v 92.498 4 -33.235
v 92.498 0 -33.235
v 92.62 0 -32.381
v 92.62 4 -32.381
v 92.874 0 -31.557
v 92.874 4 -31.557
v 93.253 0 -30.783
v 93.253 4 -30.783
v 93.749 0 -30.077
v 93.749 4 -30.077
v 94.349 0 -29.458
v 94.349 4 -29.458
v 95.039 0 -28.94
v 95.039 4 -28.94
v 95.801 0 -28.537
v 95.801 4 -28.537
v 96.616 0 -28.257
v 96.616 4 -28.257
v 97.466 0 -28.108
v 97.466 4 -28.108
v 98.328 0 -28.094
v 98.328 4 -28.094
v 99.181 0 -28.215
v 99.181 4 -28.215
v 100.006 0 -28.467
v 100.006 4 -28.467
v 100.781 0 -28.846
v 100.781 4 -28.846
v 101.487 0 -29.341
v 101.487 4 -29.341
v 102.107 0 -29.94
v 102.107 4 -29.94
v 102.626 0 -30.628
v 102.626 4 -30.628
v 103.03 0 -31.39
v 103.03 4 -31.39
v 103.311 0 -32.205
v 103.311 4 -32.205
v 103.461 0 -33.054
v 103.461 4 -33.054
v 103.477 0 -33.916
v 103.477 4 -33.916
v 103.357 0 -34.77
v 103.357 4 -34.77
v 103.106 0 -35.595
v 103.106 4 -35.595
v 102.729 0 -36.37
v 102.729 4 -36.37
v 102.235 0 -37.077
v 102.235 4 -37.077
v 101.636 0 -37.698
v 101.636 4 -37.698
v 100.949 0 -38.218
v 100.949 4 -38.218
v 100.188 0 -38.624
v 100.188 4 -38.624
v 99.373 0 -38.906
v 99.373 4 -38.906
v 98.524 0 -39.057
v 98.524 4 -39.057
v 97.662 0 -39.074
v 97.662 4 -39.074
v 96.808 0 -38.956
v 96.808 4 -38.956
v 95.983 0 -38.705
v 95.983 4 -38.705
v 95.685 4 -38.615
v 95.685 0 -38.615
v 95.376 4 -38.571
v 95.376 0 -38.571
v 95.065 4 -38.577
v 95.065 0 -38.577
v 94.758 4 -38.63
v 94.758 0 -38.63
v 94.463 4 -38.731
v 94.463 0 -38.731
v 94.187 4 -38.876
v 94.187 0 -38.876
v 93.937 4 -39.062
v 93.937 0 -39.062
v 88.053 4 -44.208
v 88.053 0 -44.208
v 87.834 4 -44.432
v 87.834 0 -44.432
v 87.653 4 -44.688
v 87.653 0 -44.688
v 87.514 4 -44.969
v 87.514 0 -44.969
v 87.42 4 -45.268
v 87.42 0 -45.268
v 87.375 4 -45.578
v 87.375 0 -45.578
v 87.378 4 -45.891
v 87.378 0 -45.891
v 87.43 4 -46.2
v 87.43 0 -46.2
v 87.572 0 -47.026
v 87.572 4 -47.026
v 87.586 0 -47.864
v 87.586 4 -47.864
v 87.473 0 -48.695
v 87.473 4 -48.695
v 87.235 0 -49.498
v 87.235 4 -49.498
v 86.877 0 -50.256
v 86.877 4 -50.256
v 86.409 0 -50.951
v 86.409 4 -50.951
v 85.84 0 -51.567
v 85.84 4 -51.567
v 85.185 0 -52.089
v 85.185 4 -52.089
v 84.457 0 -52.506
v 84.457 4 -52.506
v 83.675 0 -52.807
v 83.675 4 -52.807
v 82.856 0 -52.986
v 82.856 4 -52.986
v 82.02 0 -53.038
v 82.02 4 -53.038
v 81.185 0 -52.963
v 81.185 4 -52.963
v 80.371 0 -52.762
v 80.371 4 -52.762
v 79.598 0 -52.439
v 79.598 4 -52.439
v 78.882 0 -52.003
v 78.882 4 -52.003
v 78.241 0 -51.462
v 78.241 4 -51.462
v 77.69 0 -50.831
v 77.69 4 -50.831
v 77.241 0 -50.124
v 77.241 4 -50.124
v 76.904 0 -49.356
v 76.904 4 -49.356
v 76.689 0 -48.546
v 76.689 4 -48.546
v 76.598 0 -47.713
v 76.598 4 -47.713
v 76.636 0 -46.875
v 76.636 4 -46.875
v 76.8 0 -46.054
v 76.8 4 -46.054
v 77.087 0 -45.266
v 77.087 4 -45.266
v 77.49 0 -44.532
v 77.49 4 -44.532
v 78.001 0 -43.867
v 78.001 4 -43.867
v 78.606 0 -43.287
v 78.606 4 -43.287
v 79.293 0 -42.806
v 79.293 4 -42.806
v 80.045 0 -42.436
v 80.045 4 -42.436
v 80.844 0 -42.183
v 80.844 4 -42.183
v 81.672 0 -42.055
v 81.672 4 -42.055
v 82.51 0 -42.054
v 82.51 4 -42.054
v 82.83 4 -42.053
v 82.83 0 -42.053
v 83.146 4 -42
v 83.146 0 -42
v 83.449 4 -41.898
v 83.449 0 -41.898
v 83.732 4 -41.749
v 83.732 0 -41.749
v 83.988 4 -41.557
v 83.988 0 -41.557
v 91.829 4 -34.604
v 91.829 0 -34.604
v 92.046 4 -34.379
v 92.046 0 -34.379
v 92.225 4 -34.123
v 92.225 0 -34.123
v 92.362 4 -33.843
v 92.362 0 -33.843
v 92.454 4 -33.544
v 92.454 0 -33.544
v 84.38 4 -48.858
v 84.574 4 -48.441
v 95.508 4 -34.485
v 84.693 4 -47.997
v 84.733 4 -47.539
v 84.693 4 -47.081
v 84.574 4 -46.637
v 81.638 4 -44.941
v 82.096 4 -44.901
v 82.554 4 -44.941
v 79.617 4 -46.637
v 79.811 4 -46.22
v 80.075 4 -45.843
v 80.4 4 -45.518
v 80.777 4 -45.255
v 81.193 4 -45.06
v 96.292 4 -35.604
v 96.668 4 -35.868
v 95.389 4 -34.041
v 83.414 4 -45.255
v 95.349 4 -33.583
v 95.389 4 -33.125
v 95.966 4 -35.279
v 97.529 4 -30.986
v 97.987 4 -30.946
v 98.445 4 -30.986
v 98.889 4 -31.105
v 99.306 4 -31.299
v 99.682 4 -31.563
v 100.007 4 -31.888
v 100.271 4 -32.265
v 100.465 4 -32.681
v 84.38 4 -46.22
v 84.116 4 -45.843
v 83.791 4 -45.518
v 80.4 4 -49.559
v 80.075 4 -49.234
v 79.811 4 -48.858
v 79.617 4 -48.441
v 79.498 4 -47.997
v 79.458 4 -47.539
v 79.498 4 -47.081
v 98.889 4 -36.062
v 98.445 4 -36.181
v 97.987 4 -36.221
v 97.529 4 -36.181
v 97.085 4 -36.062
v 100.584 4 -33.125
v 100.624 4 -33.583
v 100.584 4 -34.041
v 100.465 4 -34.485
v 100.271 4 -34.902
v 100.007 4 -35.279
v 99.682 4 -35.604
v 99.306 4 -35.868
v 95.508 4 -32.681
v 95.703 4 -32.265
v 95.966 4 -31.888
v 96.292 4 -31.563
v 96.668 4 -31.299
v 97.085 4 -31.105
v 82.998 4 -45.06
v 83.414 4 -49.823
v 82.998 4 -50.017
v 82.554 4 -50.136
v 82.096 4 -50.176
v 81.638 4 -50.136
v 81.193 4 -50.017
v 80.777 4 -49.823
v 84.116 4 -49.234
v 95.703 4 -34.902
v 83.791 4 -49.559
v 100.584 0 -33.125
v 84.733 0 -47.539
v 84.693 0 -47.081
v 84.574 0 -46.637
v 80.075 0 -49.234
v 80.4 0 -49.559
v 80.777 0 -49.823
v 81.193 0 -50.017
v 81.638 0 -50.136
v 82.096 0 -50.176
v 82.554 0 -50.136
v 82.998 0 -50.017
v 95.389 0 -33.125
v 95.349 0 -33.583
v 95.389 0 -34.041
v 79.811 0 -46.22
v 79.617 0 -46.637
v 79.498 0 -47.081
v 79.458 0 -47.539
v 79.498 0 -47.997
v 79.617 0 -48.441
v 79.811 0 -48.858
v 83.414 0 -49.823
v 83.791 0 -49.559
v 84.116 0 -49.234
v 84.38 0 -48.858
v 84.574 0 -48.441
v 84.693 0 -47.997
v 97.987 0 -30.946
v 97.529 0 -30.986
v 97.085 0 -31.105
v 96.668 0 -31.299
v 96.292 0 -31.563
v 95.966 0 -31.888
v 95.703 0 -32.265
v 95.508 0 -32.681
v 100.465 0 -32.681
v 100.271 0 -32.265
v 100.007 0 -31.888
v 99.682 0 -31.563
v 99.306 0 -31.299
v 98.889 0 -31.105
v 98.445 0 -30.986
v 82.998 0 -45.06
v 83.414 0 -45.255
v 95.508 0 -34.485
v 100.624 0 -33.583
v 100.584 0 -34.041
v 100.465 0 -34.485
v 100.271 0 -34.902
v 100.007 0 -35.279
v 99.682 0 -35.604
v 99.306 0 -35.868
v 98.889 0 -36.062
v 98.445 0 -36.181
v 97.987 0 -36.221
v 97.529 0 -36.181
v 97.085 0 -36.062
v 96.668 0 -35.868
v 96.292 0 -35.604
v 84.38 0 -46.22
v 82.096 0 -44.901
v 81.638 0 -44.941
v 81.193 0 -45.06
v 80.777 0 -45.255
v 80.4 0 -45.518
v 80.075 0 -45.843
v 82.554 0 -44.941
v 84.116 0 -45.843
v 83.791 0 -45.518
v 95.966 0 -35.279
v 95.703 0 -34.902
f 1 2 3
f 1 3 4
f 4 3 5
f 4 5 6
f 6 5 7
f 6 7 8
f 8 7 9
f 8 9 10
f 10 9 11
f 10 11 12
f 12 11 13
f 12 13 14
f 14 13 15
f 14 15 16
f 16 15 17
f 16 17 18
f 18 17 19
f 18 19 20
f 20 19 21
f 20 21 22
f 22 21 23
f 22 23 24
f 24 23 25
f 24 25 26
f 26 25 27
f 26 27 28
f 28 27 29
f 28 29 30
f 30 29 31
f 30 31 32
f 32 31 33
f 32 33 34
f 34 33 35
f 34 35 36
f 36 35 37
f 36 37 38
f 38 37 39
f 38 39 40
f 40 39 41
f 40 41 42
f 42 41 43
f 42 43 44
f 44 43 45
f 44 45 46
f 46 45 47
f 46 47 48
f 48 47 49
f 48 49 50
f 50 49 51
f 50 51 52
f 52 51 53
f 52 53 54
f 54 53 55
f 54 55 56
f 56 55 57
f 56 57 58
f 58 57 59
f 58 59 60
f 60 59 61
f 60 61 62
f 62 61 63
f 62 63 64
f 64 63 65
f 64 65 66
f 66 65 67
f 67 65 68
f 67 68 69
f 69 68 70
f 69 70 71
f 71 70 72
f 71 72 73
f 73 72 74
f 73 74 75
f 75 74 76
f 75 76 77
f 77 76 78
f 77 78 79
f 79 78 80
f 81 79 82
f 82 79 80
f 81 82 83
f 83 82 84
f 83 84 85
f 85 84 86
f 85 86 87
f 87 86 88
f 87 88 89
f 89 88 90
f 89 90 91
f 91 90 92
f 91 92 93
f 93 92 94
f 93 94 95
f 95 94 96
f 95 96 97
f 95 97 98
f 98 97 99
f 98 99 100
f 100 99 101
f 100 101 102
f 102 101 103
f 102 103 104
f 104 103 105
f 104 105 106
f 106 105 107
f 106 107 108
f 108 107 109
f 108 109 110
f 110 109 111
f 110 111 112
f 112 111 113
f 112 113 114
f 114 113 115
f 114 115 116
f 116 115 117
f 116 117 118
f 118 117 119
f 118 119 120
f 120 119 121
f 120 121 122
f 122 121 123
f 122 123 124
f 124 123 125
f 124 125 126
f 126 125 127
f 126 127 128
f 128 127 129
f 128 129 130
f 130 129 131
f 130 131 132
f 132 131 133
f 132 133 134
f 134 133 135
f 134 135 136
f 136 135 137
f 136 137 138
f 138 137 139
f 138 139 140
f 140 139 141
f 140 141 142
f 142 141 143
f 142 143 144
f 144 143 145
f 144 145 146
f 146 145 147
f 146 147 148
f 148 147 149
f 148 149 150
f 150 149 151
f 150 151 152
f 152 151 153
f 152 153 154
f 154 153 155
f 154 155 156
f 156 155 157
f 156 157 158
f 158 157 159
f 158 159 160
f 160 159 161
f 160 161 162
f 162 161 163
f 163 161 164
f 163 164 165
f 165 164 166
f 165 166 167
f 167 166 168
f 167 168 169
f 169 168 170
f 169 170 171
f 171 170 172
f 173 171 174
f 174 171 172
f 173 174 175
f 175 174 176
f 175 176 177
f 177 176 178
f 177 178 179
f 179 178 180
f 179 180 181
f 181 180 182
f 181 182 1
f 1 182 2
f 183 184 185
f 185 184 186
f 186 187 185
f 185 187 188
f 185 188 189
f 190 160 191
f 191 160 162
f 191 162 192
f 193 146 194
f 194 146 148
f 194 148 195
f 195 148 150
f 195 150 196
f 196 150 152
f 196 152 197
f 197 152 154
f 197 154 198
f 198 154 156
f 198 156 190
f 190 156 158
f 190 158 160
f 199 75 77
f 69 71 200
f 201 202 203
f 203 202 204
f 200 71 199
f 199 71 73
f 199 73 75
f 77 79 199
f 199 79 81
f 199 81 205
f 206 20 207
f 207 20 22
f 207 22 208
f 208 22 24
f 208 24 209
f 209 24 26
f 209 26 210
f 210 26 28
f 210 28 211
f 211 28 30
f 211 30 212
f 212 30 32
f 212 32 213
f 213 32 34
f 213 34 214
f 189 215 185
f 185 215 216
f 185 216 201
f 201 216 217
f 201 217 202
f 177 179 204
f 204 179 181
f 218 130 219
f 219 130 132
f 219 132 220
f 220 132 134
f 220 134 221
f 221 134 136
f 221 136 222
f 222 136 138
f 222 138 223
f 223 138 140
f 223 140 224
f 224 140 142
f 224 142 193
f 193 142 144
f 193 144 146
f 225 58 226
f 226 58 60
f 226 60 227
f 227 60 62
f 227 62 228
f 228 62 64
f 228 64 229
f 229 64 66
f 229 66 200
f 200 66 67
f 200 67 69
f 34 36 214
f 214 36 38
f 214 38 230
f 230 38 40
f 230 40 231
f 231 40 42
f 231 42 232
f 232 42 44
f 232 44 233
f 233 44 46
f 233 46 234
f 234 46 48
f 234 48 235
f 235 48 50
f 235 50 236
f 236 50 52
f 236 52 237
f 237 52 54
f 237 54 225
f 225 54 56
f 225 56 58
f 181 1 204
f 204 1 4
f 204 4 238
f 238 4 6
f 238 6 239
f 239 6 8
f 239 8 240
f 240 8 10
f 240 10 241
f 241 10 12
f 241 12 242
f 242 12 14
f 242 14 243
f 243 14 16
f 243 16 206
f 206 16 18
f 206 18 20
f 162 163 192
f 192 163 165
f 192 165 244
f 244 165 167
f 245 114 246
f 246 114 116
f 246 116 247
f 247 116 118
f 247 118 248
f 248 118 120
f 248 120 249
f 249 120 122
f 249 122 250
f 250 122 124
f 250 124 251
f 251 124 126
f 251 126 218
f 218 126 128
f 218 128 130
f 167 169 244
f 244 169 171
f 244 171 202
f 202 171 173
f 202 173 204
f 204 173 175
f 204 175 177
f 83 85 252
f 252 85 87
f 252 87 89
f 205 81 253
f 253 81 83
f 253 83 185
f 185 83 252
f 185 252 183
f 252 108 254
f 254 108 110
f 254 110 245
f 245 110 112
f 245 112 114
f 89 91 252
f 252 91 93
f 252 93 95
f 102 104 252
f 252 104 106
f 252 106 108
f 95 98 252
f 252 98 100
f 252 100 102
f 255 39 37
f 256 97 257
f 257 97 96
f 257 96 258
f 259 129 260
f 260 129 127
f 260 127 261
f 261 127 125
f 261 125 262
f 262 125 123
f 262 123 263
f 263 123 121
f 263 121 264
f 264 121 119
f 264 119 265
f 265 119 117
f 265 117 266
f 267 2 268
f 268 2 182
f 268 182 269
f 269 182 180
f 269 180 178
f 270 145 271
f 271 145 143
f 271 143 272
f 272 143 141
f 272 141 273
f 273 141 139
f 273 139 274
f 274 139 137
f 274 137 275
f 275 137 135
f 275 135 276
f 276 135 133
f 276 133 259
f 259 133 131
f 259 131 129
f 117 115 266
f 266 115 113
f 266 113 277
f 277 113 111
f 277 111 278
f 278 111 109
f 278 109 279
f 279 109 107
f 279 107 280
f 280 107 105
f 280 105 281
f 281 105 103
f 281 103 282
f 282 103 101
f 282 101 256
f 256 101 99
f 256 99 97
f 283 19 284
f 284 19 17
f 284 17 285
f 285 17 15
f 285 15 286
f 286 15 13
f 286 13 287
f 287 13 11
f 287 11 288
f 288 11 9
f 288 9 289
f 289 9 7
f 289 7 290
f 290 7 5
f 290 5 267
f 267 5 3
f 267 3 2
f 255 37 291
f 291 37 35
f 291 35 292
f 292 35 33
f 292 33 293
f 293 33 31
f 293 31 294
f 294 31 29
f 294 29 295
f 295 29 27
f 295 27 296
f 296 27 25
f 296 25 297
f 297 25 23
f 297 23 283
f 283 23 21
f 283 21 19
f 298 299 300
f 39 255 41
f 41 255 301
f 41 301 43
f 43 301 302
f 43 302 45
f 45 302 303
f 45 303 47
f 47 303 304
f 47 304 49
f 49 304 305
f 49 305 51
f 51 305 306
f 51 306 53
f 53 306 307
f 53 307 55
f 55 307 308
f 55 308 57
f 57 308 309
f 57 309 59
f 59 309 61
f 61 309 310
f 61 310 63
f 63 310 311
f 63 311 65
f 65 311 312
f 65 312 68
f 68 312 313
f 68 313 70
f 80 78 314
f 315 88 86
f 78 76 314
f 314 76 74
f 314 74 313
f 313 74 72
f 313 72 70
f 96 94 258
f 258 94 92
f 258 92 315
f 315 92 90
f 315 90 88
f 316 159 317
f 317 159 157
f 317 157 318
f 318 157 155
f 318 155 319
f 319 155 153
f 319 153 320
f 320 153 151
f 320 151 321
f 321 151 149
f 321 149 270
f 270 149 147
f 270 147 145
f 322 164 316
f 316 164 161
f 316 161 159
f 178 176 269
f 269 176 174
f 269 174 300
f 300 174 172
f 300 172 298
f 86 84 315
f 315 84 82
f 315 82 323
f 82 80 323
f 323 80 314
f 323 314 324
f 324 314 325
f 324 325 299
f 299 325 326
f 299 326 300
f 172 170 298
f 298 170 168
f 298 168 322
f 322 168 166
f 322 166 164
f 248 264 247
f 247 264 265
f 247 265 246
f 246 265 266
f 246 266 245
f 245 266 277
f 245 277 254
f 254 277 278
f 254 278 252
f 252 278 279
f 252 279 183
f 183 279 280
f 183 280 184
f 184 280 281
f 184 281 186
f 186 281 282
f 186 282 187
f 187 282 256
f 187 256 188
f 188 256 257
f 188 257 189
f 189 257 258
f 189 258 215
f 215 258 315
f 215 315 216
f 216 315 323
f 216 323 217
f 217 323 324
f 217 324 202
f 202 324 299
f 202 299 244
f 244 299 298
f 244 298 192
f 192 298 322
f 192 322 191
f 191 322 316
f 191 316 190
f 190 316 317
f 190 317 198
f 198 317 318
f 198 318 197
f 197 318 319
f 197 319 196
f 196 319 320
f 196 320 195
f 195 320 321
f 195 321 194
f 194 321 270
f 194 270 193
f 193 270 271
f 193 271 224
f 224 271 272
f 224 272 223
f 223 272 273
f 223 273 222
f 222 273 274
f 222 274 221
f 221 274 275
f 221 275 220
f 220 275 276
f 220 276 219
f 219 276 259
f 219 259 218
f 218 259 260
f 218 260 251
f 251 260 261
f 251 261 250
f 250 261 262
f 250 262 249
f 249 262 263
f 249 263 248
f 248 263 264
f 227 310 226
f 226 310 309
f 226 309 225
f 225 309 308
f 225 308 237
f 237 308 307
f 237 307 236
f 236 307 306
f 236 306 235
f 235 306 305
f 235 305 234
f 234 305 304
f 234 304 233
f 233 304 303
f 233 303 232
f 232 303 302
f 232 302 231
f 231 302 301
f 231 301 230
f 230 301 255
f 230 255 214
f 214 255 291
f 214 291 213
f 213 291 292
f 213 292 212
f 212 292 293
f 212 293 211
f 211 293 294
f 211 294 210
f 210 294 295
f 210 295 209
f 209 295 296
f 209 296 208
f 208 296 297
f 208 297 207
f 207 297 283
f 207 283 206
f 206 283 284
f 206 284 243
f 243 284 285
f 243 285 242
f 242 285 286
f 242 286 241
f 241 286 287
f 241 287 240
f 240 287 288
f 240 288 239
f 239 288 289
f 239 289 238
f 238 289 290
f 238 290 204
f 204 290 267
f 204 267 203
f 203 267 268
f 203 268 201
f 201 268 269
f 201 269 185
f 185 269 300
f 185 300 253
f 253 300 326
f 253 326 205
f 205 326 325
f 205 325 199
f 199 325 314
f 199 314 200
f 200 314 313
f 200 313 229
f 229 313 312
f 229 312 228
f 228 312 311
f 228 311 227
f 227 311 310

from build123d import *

# Parameters (mm, degrees)
SKETCH1_R           = 2.6375
BOSS_EXTRUDE1_DEPTH = 4


with BuildPart() as part:
    # Sketch1 → Boss-Extrude1 (new body)
    with BuildSketch(Plane.XZ):
        with BuildLine():
            Line((91.828846411, -34.604196587), (83.987808778, -41.556583288))
            ThreePointArc((83.987808778, -41.556583288), (83.299503374, -41.95543418), (82.510169812, -42.054423534))
            ThreePointArc((82.510169812, -42.054423534), (78.551510946, -51.744694217), (87.430169632, -46.200170264))
            ThreePointArc((87.430169632, -46.200170264), (87.461256355, -45.116261185), (88.053439291, -44.207886459))
            Line((88.053439291, -44.207886459), (93.937481824, -39.062233577))
            ThreePointArc((93.937481824, -39.062233577), (94.910198817, -38.597536781), (95.982821704, -38.705247518))
            ThreePointArc((95.982821704, -38.705247518), (102.625664422, -30.628415987), (92.497951624, -33.234562654))
            ThreePointArc((92.497951624, -33.234562654), (92.299001629, -33.985625361), (91.828846411, -34.604196587))
        make_face()
        with Locations((82.095552315, -47.538773298)):
            Circle(SKETCH1_R, mode=Mode.SUBTRACT)
        with Locations((97.986880619, -33.583358427)):
            Circle(SKETCH1_R, mode=Mode.SUBTRACT)
    extrude(amount=-BOSS_EXTRUDE1_DEPTH)


solid = part.part
